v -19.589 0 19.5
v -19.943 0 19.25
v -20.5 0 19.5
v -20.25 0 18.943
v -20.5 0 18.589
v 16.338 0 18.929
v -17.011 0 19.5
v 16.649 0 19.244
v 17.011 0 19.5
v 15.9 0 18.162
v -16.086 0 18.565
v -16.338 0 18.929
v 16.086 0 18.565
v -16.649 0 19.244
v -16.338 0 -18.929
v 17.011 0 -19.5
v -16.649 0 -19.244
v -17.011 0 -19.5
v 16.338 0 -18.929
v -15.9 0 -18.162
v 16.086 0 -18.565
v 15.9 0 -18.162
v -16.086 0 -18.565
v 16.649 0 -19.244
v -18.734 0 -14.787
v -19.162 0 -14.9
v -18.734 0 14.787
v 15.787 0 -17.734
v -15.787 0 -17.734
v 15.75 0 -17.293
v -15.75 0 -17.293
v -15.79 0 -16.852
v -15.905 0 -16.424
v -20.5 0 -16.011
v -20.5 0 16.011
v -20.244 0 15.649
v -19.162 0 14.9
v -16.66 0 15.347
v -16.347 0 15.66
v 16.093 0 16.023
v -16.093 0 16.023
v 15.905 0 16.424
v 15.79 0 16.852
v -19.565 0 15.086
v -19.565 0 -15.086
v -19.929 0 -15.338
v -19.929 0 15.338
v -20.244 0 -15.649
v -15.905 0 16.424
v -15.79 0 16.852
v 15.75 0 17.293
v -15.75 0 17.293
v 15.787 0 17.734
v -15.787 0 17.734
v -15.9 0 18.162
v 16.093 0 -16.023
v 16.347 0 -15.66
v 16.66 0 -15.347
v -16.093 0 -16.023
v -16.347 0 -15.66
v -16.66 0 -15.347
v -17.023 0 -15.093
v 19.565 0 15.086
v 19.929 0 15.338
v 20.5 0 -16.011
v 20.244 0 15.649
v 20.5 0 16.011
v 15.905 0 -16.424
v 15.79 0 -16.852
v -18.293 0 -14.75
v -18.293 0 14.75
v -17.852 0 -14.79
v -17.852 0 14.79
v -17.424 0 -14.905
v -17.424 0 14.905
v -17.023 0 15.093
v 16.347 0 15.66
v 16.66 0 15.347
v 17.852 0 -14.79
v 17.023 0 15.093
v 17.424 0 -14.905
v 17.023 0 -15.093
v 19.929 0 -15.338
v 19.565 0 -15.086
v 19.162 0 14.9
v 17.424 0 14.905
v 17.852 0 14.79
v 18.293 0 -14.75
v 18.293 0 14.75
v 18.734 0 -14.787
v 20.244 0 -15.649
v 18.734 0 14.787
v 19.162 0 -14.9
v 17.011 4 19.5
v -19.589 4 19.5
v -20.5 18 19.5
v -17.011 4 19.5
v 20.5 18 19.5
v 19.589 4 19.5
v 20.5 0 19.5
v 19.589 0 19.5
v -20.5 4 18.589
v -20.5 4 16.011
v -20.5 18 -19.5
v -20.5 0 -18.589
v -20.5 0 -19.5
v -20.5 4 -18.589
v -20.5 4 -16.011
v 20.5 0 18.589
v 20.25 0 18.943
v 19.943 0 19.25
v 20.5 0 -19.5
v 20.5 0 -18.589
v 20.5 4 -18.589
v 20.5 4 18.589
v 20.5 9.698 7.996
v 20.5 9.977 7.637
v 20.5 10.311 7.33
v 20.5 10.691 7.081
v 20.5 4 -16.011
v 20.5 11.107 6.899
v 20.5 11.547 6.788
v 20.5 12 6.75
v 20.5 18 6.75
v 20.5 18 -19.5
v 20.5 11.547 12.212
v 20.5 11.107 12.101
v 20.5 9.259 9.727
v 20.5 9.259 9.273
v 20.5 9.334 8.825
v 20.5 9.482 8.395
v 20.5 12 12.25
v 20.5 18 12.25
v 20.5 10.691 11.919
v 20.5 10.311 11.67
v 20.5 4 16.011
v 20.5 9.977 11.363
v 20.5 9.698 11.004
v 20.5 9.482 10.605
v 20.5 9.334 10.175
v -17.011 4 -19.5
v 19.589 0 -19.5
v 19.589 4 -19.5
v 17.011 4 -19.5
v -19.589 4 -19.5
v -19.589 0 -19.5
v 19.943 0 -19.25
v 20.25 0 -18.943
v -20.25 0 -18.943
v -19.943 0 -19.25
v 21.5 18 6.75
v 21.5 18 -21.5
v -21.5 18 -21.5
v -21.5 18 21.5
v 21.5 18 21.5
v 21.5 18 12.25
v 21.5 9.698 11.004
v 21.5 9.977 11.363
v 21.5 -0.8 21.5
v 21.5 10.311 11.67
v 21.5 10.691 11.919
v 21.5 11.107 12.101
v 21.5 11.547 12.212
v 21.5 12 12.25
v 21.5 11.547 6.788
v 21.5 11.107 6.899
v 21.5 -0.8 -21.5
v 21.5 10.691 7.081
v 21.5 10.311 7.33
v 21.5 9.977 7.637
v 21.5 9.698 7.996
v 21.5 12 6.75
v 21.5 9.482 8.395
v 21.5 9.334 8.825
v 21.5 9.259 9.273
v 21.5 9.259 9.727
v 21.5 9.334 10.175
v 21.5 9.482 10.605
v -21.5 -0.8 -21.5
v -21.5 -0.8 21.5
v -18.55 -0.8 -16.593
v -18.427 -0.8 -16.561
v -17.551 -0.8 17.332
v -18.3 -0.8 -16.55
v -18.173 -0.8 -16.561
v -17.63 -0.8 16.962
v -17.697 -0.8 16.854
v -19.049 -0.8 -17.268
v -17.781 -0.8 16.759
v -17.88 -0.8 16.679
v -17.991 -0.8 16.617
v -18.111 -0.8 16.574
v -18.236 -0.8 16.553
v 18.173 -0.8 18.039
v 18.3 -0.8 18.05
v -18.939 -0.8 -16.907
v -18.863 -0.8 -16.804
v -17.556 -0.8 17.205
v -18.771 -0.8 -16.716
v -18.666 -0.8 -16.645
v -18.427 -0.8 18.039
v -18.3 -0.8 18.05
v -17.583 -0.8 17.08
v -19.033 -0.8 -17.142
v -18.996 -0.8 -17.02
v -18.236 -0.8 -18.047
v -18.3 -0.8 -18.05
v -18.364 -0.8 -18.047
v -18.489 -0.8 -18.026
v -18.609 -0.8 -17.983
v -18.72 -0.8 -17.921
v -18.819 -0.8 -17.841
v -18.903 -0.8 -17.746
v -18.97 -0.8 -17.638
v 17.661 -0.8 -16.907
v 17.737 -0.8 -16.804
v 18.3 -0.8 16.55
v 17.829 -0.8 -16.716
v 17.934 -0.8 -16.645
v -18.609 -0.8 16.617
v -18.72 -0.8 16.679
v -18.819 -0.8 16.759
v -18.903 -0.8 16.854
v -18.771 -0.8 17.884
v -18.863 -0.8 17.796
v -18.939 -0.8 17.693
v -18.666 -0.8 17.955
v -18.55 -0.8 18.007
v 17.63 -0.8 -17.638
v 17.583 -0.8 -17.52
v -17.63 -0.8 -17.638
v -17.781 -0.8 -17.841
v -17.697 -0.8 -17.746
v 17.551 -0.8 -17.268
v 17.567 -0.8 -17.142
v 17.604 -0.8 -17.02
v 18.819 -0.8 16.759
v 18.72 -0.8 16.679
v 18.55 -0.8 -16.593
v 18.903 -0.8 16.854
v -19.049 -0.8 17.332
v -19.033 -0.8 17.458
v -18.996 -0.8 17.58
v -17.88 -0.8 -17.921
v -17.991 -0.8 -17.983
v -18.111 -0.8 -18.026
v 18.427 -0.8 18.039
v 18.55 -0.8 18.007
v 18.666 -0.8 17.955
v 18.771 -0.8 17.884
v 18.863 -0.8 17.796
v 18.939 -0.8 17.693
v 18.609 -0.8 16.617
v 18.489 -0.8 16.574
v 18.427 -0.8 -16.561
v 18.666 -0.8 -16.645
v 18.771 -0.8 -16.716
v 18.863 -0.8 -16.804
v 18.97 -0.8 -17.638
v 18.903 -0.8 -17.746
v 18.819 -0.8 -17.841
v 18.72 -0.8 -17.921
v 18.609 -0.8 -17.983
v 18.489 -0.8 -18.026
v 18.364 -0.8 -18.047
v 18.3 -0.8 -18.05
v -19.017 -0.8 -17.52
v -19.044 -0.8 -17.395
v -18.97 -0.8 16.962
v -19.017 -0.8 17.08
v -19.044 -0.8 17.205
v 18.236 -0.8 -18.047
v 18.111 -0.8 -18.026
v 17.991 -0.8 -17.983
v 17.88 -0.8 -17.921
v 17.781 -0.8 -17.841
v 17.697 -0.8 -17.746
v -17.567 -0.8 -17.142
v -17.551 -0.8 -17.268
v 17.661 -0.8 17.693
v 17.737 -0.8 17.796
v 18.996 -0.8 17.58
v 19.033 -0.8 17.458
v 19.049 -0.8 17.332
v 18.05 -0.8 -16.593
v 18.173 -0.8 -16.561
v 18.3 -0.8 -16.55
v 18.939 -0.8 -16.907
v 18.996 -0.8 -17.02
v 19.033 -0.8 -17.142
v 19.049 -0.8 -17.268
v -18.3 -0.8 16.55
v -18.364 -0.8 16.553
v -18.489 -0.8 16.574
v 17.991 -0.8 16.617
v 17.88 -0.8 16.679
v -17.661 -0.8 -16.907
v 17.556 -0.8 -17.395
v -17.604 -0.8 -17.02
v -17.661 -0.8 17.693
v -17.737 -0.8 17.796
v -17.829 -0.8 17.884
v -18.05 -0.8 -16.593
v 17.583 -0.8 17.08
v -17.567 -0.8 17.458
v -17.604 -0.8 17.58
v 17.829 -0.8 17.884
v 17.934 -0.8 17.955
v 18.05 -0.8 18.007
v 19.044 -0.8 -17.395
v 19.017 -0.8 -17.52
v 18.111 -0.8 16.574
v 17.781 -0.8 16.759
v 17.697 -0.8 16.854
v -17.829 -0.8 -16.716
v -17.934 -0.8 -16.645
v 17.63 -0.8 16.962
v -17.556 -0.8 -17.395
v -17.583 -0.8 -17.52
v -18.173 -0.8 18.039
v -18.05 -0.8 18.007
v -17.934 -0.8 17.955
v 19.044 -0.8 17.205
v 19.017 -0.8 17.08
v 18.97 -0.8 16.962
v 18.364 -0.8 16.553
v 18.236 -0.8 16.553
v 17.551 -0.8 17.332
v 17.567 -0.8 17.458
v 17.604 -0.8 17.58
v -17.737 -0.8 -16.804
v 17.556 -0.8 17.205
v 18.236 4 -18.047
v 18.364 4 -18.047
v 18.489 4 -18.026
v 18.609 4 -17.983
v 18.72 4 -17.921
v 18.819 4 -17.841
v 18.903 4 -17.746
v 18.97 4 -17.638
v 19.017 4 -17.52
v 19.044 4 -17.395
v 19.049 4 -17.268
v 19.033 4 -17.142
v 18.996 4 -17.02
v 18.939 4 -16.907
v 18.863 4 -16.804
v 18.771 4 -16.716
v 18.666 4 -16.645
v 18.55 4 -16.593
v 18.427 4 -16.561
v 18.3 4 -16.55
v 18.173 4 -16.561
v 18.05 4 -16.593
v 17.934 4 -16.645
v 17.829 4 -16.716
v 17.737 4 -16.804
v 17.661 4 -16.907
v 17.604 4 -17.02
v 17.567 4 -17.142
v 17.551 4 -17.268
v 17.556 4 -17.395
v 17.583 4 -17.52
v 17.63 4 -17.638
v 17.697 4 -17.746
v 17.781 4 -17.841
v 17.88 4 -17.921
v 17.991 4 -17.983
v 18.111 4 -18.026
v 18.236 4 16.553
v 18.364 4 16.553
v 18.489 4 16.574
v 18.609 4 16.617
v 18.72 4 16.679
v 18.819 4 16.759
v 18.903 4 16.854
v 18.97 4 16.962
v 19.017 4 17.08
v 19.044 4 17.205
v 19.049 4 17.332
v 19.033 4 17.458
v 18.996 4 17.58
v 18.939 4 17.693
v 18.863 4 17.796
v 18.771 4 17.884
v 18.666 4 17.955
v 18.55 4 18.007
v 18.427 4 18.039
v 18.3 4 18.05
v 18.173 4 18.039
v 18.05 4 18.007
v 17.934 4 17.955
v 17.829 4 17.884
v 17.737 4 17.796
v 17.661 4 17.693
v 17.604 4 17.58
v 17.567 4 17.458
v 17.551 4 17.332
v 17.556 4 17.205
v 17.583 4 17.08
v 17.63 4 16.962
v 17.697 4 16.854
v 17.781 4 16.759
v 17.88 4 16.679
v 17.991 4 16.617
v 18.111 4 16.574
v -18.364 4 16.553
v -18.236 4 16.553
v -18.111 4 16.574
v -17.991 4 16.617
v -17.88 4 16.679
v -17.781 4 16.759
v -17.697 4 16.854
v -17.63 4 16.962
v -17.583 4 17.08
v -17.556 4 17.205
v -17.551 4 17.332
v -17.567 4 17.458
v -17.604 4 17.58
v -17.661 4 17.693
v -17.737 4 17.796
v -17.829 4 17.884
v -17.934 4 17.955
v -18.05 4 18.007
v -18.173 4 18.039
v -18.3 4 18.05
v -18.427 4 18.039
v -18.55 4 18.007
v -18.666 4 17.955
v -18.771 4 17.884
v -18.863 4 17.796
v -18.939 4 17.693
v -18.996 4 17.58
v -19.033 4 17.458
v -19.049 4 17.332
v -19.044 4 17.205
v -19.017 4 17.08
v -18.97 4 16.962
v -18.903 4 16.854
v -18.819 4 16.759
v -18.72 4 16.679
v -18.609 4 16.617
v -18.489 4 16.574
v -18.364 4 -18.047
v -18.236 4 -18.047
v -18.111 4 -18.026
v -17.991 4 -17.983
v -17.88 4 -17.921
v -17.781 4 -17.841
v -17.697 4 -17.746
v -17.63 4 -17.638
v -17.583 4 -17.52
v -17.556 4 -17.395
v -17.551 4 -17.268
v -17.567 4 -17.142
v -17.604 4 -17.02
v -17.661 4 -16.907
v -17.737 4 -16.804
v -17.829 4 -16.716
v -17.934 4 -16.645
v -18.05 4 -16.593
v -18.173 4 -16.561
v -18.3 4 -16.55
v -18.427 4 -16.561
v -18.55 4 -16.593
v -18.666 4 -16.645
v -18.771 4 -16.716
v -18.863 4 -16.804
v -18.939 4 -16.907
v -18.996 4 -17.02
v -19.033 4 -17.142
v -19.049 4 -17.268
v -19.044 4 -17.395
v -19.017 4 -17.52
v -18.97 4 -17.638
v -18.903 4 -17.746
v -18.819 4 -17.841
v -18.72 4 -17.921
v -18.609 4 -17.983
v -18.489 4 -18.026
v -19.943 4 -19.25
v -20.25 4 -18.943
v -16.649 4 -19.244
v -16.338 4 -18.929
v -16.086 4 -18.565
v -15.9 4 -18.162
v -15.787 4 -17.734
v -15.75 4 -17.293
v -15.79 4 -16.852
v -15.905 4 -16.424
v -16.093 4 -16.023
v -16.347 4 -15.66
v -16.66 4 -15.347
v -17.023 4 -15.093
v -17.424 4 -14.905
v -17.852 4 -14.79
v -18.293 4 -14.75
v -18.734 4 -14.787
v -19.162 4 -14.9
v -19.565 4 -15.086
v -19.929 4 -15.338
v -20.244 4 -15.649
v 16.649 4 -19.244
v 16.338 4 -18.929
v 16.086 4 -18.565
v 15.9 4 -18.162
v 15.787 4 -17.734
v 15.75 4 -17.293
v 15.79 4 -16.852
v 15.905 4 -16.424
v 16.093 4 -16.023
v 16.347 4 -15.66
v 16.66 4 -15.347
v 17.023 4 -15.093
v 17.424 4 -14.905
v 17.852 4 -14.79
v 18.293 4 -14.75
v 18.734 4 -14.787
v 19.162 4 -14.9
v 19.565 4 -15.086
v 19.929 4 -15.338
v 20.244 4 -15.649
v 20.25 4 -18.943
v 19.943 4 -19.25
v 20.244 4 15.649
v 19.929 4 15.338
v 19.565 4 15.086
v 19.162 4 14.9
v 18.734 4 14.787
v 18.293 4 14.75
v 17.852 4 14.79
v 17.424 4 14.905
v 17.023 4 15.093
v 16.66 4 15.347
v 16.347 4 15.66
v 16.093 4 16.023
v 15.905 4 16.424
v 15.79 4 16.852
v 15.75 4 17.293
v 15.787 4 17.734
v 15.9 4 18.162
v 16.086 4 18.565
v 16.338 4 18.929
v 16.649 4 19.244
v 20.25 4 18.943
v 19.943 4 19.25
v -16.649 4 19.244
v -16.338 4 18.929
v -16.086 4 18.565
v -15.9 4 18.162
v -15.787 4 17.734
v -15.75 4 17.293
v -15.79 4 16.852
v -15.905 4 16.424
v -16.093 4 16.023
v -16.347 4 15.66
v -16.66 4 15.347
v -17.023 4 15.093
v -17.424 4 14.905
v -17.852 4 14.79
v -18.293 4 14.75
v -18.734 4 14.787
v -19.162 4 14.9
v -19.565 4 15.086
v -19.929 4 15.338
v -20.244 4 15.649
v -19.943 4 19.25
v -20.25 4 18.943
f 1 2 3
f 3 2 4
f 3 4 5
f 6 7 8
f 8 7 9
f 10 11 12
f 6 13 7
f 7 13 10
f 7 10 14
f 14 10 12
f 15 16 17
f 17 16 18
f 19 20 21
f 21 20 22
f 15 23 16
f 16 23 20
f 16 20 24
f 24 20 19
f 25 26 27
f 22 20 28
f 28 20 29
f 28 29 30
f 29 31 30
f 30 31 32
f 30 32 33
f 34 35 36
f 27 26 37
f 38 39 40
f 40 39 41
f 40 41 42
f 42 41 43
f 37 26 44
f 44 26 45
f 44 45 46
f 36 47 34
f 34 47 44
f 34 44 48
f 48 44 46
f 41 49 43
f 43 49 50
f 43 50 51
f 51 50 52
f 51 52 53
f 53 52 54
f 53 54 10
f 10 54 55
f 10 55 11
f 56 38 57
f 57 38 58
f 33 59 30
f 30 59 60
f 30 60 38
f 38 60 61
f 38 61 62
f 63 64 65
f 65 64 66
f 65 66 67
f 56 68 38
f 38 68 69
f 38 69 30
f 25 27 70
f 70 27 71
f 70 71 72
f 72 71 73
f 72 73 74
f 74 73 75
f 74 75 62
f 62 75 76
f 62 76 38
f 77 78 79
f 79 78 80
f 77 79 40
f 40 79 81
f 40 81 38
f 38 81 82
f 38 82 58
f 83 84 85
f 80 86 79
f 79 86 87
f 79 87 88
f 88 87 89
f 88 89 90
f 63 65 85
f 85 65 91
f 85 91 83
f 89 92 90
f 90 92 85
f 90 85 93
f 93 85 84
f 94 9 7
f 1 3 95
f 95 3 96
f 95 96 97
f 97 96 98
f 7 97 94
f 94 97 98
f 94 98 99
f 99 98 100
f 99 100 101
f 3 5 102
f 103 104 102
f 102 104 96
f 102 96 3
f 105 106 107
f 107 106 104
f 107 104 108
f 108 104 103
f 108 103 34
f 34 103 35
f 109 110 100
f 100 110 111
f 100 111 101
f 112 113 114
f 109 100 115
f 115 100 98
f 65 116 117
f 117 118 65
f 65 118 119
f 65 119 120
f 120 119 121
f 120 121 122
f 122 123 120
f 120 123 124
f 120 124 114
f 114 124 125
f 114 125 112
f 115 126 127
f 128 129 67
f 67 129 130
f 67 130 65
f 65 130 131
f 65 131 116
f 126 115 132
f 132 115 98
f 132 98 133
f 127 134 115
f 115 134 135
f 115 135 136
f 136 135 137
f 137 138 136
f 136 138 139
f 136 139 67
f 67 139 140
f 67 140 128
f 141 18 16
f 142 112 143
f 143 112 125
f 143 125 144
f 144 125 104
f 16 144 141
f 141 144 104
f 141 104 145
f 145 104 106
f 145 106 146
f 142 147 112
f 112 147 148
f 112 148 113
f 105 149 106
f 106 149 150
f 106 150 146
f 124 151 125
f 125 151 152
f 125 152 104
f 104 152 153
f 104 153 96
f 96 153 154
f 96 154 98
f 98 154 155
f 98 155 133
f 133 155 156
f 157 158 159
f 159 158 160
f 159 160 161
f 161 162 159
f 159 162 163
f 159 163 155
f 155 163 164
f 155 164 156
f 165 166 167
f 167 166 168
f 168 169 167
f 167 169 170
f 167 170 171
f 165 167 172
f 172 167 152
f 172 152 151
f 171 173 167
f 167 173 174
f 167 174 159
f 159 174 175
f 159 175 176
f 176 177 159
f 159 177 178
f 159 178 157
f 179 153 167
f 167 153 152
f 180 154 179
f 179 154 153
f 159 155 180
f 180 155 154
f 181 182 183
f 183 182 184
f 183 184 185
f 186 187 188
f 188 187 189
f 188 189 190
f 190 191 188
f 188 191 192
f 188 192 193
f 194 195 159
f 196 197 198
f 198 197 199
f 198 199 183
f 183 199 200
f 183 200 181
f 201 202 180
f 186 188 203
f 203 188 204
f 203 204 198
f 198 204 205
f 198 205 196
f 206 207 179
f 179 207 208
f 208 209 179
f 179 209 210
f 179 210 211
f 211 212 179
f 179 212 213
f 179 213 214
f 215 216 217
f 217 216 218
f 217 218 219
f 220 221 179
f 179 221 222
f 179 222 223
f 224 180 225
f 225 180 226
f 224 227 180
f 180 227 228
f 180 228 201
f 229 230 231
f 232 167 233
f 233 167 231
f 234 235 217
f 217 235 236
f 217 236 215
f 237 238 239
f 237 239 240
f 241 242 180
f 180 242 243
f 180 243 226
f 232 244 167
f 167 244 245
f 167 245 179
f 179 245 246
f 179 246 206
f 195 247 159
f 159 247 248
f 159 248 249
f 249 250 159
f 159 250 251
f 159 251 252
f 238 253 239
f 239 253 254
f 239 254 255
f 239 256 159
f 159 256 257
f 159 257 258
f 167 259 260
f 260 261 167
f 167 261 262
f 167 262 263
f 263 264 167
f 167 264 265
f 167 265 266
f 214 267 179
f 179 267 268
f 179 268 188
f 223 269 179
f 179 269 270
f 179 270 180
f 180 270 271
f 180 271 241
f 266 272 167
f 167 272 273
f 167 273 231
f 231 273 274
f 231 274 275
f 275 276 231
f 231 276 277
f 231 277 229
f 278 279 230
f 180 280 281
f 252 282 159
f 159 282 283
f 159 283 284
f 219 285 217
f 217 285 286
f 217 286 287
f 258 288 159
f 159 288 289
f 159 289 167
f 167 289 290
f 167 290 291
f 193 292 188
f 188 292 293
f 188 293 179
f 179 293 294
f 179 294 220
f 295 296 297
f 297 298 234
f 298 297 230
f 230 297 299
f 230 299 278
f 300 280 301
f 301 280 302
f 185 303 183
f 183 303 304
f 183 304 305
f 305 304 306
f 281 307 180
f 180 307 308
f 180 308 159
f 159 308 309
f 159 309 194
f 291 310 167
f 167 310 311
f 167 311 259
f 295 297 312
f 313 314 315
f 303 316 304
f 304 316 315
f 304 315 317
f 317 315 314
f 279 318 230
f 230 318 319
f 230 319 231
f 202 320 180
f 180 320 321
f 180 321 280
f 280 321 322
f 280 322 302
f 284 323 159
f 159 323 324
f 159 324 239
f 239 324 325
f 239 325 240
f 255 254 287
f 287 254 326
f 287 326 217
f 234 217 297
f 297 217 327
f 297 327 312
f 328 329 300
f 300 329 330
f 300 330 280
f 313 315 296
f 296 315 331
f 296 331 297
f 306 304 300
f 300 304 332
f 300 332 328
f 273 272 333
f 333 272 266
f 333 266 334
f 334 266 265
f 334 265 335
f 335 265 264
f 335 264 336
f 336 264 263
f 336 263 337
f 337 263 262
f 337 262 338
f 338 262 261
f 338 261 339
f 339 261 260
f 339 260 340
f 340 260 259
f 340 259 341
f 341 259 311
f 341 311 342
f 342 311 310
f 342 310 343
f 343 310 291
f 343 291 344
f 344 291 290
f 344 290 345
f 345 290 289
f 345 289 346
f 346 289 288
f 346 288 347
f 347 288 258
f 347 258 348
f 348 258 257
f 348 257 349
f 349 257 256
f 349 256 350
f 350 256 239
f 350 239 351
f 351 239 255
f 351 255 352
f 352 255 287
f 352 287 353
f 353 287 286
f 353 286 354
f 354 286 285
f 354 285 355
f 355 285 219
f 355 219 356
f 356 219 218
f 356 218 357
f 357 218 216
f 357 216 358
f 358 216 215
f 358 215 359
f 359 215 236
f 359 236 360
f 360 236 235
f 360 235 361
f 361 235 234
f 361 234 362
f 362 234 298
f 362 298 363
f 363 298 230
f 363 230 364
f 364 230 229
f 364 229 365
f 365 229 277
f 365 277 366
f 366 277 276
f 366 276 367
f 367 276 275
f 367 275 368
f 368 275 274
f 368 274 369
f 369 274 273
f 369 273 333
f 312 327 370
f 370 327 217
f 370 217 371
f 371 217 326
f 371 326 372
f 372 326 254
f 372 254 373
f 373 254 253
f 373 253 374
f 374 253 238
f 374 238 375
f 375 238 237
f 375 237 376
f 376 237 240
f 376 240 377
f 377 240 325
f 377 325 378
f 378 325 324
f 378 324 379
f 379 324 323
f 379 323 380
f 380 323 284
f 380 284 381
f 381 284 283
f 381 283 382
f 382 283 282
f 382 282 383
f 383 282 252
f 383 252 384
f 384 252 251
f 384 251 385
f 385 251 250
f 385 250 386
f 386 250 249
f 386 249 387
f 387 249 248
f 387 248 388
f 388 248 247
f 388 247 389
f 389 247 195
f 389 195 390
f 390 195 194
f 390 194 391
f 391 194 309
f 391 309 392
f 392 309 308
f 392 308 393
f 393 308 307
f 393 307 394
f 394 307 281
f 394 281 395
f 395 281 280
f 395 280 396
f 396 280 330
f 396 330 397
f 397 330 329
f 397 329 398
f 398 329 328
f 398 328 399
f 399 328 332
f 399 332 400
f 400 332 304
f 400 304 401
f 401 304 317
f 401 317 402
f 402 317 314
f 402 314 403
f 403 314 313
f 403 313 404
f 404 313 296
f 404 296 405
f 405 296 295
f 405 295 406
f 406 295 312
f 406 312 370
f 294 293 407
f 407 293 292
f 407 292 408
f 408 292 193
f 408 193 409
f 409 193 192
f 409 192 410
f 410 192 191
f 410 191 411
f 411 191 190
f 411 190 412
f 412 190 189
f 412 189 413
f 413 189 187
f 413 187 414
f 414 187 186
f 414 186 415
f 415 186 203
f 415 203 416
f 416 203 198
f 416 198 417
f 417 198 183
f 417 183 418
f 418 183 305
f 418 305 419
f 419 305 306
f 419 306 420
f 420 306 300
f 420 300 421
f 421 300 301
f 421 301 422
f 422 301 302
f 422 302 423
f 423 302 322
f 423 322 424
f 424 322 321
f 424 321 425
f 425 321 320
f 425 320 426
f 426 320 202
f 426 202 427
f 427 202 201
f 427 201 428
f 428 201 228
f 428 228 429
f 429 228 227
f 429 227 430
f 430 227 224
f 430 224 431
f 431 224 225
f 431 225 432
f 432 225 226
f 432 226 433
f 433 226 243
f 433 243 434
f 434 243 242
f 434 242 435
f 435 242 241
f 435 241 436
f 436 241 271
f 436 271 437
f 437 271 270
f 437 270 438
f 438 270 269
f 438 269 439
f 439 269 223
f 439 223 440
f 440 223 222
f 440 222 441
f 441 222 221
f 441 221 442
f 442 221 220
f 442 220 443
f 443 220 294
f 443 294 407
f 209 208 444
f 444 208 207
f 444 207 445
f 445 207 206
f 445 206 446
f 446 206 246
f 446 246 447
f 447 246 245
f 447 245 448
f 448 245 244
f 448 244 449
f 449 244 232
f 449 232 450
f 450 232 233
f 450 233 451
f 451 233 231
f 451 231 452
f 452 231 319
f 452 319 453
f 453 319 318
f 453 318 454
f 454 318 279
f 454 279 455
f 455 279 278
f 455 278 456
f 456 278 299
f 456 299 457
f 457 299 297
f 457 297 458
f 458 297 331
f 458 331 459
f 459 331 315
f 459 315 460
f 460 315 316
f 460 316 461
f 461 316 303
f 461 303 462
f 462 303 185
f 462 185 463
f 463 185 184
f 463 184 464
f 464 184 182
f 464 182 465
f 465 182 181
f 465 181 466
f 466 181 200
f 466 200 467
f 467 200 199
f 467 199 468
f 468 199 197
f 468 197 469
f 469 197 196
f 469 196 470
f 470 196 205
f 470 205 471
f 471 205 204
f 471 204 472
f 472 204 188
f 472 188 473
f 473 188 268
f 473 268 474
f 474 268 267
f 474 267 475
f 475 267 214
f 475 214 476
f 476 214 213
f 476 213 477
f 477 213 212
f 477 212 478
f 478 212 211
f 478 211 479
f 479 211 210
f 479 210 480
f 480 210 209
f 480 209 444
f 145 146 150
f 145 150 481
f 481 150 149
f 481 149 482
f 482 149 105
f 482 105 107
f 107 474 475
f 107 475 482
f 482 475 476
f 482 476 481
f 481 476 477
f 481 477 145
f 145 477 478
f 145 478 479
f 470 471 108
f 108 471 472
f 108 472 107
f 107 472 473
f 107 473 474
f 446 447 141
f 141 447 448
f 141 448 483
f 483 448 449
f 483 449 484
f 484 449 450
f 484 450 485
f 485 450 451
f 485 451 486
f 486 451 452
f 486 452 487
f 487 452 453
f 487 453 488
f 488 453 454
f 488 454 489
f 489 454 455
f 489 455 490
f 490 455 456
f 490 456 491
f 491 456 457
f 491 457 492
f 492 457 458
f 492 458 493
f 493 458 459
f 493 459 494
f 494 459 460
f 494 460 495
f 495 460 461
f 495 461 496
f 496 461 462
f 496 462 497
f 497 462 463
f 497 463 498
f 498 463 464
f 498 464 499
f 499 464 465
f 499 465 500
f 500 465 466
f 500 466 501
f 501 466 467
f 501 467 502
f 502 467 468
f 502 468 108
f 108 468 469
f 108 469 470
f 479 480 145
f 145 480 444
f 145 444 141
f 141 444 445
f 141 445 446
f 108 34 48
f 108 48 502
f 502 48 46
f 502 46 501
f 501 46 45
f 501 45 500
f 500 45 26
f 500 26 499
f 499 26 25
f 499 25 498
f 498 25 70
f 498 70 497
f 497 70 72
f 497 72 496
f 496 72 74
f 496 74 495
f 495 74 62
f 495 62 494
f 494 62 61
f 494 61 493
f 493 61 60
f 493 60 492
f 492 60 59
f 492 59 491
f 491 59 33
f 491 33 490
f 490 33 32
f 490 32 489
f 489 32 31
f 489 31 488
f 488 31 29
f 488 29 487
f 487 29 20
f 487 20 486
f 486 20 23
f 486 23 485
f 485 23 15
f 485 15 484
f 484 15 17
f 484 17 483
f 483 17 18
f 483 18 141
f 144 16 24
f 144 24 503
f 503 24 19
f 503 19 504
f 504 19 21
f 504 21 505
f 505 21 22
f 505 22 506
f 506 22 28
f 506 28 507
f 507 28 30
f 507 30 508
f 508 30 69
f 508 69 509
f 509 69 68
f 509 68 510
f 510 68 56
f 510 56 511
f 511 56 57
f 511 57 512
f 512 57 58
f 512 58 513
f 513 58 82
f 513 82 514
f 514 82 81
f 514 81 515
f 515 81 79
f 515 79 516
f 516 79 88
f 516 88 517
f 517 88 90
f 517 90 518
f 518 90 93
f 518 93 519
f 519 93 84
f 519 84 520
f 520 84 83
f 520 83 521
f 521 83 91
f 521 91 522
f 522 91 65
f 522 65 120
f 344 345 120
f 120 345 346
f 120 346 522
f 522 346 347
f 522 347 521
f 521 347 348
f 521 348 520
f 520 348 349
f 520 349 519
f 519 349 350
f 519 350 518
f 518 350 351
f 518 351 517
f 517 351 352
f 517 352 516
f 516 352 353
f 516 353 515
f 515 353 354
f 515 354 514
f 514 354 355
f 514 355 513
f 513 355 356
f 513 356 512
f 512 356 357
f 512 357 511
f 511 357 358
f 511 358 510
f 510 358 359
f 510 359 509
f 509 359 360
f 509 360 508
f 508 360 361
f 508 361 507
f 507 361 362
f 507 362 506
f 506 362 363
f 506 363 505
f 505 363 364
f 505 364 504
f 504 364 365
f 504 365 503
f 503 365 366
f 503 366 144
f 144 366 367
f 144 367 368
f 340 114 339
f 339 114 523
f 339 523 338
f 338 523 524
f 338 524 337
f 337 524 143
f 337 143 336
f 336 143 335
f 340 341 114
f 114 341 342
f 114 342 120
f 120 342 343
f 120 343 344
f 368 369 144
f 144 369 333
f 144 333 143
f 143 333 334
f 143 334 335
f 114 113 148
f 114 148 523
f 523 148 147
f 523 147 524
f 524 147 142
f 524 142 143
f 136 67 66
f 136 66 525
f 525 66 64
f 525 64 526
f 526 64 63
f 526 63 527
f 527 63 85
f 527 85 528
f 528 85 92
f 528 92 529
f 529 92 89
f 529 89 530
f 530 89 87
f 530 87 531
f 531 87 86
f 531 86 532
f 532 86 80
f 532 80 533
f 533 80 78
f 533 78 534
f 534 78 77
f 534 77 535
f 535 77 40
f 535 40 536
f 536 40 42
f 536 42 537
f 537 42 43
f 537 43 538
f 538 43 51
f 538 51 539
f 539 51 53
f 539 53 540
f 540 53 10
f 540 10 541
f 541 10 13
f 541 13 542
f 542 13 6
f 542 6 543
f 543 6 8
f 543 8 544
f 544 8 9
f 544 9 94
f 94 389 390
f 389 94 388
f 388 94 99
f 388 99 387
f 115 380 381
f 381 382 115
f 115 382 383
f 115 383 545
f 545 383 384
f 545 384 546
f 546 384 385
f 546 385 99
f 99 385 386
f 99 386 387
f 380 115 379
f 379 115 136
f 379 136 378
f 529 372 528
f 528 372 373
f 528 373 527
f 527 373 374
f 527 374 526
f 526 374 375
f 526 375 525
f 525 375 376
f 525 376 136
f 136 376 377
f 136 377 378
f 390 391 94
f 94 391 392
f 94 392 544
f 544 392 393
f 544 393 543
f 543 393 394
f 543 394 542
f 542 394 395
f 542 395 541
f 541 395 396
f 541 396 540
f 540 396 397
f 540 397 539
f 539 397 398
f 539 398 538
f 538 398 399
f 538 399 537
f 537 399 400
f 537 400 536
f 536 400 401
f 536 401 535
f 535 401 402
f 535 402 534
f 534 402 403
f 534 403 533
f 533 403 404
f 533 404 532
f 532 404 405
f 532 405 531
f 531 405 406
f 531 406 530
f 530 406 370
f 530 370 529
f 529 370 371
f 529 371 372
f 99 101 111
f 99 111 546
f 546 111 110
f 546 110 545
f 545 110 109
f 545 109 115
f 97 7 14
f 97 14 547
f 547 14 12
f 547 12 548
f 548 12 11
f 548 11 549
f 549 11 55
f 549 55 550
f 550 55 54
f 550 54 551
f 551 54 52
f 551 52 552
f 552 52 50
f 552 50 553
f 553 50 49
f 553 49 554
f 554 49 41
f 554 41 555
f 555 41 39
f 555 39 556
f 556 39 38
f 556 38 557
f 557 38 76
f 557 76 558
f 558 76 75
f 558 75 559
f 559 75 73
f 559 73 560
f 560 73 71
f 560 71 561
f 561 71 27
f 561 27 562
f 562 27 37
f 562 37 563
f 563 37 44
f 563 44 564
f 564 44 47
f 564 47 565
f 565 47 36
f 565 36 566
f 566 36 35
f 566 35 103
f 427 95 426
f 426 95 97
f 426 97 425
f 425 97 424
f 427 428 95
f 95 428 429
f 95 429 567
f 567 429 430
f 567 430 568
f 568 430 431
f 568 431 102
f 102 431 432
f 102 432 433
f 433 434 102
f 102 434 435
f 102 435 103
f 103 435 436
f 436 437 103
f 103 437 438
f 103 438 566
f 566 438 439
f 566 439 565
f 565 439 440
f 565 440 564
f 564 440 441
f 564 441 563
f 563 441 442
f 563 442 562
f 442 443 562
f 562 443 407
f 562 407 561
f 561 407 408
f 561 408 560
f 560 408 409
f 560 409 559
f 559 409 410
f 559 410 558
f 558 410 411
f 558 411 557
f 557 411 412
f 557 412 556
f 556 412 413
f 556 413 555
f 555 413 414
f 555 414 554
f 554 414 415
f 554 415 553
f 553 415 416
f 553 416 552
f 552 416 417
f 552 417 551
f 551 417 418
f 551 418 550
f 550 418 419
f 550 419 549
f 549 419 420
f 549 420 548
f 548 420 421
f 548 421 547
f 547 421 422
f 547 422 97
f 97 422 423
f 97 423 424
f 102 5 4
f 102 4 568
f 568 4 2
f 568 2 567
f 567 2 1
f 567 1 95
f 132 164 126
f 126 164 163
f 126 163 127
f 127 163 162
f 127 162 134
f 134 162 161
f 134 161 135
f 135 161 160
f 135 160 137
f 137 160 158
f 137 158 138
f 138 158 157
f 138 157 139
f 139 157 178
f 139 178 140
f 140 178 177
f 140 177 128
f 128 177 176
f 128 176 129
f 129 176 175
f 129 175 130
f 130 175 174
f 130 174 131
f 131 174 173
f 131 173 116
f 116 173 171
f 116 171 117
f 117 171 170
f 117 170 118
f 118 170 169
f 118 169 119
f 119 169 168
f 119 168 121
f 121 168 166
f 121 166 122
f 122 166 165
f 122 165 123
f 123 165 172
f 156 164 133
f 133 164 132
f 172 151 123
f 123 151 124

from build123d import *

# Parameters (mm, degrees)
SKETCH1_W           = 43
SKETCH1_H           = 43
SKETCH1_W_2         = 41
SKETCH1_H_2         = 39
BOSS_EXTRUDE1_DEPTH = 18
SKETCH2_W           = 43
SKETCH2_H           = 43
BOSS_EXTRUDE2_DEPTH = 0.8
SKETCH3_R           = 0.75
CUT_EXTRUDE1_DEPTH  = 10.8
BOSS_EXTRUDE3_START = 4
SKETCH4_R           = 2.55
SKETCH4_R_2         = 0.75
BOSS_EXTRUDE3_DEPTH = 4
CUT_EXTRUDE2_DEPTH  = 4


with BuildPart() as part:
    # Sketch1 → Boss-Extrude1 (new body)
    with BuildSketch(Plane(origin=(0, 0, 0), x_dir=(1, 0, 0), z_dir=(0, 1, 0))):
        Rectangle(SKETCH1_W, SKETCH1_H)
        Rectangle(SKETCH1_W_2, SKETCH1_H_2, mode=Mode.SUBTRACT)
    extrude(amount=BOSS_EXTRUDE1_DEPTH)

    # Sketch2 → Boss-Extrude2 (add)
    with BuildSketch(Plane.XZ):
        Rectangle(SKETCH2_W, SKETCH2_H)
    extrude(amount=BOSS_EXTRUDE2_DEPTH)

    # Sketch3 → Cut-Extrude1 (cut)
    with BuildSketch(Plane(origin=(0, 0, 0), x_dir=(1, 0, 0), z_dir=(0, 1, 0))):
        with Locations(Location((18.3, 17.3, 0), (0, 0, 270))):
            Circle(SKETCH3_R)
        with Locations(Location((-18.3, 17.3, 0), (0, 0, 270))):
            Circle(SKETCH3_R)
        with Locations(Location((-18.3, -17.3, 0), (0, 0, 270))):
            Circle(SKETCH3_R)
        with Locations(Location((18.3, -17.3, 0), (0, 0, 270))):
            Circle(SKETCH3_R)
    extrude(amount=-CUT_EXTRUDE1_DEPTH, mode=Mode.SUBTRACT)

    # Sketch4 → Boss-Extrude3 (add)
    # profile 1 of 4: a face of its own
    with BuildSketch(Plane(origin=(0, 0, 0), x_dir=(1, 0, 0), z_dir=(0, 1, 0)).offset(BOSS_EXTRUDE3_START)):
        with Locations((-18.3, 17.3)):
            Circle(SKETCH4_R)
        with Locations(Location((-18.3, 17.3, 0), (0, 0, 270))):
            Circle(SKETCH4_R_2, mode=Mode.SUBTRACT)
    # profile 2 of 4: a face of its own
    with BuildSketch(Plane(origin=(0, 0, 0), x_dir=(1, 0, 0), z_dir=(0, 1, 0)).offset(BOSS_EXTRUDE3_START)):
        with Locations((18.3, 17.3)):
            Circle(SKETCH4_R)
        with Locations(Location((18.3, 17.3, 0), (0, 0, 270))):
            Circle(SKETCH4_R_2, mode=Mode.SUBTRACT)
    # profile 3 of 4: a face of its own
    with BuildSketch(Plane(origin=(0, 0, 0), x_dir=(1, 0, 0), z_dir=(0, 1, 0)).offset(BOSS_EXTRUDE3_START)):
        with Locations((18.3, -17.3)):
            Circle(SKETCH4_R)
        with Locations(Location((18.3, -17.3, 0), (0, 0, 270))):
            Circle(SKETCH4_R_2, mode=Mode.SUBTRACT)
    # profile 4 of 4: a face of its own
    with BuildSketch(Plane(origin=(0, 0, 0), x_dir=(1, 0, 0), z_dir=(0, 1, 0)).offset(BOSS_EXTRUDE3_START)):
        with Locations((-18.3, -17.3)):
            Circle(SKETCH4_R)
        with Locations(Location((-18.3, -17.3, 0), (0, 0, 270))):
            Circle(SKETCH4_R_2, mode=Mode.SUBTRACT)
    extrude(amount=-BOSS_EXTRUDE3_DEPTH)

    # Sketch5 → Cut-Extrude2 (cut)
    with BuildSketch(Plane(origin=(21.5, 0, 0), x_dir=(0, 0, -1), z_dir=(1, 0, 0))):
        with BuildLine():
            Line((-12.25, 12), (-12.25, 18))
            Line((-12.25, 18), (-6.75, 18))
            Line((-6.75, 18), (-6.75, 12))
            ThreePointArc((-6.75, 12), (-9.5, 9.25), (-12.25, 12))
        make_face()
    extrude(amount=-CUT_EXTRUDE2_DEPTH, mode=Mode.SUBTRACT)


solid = part.part
